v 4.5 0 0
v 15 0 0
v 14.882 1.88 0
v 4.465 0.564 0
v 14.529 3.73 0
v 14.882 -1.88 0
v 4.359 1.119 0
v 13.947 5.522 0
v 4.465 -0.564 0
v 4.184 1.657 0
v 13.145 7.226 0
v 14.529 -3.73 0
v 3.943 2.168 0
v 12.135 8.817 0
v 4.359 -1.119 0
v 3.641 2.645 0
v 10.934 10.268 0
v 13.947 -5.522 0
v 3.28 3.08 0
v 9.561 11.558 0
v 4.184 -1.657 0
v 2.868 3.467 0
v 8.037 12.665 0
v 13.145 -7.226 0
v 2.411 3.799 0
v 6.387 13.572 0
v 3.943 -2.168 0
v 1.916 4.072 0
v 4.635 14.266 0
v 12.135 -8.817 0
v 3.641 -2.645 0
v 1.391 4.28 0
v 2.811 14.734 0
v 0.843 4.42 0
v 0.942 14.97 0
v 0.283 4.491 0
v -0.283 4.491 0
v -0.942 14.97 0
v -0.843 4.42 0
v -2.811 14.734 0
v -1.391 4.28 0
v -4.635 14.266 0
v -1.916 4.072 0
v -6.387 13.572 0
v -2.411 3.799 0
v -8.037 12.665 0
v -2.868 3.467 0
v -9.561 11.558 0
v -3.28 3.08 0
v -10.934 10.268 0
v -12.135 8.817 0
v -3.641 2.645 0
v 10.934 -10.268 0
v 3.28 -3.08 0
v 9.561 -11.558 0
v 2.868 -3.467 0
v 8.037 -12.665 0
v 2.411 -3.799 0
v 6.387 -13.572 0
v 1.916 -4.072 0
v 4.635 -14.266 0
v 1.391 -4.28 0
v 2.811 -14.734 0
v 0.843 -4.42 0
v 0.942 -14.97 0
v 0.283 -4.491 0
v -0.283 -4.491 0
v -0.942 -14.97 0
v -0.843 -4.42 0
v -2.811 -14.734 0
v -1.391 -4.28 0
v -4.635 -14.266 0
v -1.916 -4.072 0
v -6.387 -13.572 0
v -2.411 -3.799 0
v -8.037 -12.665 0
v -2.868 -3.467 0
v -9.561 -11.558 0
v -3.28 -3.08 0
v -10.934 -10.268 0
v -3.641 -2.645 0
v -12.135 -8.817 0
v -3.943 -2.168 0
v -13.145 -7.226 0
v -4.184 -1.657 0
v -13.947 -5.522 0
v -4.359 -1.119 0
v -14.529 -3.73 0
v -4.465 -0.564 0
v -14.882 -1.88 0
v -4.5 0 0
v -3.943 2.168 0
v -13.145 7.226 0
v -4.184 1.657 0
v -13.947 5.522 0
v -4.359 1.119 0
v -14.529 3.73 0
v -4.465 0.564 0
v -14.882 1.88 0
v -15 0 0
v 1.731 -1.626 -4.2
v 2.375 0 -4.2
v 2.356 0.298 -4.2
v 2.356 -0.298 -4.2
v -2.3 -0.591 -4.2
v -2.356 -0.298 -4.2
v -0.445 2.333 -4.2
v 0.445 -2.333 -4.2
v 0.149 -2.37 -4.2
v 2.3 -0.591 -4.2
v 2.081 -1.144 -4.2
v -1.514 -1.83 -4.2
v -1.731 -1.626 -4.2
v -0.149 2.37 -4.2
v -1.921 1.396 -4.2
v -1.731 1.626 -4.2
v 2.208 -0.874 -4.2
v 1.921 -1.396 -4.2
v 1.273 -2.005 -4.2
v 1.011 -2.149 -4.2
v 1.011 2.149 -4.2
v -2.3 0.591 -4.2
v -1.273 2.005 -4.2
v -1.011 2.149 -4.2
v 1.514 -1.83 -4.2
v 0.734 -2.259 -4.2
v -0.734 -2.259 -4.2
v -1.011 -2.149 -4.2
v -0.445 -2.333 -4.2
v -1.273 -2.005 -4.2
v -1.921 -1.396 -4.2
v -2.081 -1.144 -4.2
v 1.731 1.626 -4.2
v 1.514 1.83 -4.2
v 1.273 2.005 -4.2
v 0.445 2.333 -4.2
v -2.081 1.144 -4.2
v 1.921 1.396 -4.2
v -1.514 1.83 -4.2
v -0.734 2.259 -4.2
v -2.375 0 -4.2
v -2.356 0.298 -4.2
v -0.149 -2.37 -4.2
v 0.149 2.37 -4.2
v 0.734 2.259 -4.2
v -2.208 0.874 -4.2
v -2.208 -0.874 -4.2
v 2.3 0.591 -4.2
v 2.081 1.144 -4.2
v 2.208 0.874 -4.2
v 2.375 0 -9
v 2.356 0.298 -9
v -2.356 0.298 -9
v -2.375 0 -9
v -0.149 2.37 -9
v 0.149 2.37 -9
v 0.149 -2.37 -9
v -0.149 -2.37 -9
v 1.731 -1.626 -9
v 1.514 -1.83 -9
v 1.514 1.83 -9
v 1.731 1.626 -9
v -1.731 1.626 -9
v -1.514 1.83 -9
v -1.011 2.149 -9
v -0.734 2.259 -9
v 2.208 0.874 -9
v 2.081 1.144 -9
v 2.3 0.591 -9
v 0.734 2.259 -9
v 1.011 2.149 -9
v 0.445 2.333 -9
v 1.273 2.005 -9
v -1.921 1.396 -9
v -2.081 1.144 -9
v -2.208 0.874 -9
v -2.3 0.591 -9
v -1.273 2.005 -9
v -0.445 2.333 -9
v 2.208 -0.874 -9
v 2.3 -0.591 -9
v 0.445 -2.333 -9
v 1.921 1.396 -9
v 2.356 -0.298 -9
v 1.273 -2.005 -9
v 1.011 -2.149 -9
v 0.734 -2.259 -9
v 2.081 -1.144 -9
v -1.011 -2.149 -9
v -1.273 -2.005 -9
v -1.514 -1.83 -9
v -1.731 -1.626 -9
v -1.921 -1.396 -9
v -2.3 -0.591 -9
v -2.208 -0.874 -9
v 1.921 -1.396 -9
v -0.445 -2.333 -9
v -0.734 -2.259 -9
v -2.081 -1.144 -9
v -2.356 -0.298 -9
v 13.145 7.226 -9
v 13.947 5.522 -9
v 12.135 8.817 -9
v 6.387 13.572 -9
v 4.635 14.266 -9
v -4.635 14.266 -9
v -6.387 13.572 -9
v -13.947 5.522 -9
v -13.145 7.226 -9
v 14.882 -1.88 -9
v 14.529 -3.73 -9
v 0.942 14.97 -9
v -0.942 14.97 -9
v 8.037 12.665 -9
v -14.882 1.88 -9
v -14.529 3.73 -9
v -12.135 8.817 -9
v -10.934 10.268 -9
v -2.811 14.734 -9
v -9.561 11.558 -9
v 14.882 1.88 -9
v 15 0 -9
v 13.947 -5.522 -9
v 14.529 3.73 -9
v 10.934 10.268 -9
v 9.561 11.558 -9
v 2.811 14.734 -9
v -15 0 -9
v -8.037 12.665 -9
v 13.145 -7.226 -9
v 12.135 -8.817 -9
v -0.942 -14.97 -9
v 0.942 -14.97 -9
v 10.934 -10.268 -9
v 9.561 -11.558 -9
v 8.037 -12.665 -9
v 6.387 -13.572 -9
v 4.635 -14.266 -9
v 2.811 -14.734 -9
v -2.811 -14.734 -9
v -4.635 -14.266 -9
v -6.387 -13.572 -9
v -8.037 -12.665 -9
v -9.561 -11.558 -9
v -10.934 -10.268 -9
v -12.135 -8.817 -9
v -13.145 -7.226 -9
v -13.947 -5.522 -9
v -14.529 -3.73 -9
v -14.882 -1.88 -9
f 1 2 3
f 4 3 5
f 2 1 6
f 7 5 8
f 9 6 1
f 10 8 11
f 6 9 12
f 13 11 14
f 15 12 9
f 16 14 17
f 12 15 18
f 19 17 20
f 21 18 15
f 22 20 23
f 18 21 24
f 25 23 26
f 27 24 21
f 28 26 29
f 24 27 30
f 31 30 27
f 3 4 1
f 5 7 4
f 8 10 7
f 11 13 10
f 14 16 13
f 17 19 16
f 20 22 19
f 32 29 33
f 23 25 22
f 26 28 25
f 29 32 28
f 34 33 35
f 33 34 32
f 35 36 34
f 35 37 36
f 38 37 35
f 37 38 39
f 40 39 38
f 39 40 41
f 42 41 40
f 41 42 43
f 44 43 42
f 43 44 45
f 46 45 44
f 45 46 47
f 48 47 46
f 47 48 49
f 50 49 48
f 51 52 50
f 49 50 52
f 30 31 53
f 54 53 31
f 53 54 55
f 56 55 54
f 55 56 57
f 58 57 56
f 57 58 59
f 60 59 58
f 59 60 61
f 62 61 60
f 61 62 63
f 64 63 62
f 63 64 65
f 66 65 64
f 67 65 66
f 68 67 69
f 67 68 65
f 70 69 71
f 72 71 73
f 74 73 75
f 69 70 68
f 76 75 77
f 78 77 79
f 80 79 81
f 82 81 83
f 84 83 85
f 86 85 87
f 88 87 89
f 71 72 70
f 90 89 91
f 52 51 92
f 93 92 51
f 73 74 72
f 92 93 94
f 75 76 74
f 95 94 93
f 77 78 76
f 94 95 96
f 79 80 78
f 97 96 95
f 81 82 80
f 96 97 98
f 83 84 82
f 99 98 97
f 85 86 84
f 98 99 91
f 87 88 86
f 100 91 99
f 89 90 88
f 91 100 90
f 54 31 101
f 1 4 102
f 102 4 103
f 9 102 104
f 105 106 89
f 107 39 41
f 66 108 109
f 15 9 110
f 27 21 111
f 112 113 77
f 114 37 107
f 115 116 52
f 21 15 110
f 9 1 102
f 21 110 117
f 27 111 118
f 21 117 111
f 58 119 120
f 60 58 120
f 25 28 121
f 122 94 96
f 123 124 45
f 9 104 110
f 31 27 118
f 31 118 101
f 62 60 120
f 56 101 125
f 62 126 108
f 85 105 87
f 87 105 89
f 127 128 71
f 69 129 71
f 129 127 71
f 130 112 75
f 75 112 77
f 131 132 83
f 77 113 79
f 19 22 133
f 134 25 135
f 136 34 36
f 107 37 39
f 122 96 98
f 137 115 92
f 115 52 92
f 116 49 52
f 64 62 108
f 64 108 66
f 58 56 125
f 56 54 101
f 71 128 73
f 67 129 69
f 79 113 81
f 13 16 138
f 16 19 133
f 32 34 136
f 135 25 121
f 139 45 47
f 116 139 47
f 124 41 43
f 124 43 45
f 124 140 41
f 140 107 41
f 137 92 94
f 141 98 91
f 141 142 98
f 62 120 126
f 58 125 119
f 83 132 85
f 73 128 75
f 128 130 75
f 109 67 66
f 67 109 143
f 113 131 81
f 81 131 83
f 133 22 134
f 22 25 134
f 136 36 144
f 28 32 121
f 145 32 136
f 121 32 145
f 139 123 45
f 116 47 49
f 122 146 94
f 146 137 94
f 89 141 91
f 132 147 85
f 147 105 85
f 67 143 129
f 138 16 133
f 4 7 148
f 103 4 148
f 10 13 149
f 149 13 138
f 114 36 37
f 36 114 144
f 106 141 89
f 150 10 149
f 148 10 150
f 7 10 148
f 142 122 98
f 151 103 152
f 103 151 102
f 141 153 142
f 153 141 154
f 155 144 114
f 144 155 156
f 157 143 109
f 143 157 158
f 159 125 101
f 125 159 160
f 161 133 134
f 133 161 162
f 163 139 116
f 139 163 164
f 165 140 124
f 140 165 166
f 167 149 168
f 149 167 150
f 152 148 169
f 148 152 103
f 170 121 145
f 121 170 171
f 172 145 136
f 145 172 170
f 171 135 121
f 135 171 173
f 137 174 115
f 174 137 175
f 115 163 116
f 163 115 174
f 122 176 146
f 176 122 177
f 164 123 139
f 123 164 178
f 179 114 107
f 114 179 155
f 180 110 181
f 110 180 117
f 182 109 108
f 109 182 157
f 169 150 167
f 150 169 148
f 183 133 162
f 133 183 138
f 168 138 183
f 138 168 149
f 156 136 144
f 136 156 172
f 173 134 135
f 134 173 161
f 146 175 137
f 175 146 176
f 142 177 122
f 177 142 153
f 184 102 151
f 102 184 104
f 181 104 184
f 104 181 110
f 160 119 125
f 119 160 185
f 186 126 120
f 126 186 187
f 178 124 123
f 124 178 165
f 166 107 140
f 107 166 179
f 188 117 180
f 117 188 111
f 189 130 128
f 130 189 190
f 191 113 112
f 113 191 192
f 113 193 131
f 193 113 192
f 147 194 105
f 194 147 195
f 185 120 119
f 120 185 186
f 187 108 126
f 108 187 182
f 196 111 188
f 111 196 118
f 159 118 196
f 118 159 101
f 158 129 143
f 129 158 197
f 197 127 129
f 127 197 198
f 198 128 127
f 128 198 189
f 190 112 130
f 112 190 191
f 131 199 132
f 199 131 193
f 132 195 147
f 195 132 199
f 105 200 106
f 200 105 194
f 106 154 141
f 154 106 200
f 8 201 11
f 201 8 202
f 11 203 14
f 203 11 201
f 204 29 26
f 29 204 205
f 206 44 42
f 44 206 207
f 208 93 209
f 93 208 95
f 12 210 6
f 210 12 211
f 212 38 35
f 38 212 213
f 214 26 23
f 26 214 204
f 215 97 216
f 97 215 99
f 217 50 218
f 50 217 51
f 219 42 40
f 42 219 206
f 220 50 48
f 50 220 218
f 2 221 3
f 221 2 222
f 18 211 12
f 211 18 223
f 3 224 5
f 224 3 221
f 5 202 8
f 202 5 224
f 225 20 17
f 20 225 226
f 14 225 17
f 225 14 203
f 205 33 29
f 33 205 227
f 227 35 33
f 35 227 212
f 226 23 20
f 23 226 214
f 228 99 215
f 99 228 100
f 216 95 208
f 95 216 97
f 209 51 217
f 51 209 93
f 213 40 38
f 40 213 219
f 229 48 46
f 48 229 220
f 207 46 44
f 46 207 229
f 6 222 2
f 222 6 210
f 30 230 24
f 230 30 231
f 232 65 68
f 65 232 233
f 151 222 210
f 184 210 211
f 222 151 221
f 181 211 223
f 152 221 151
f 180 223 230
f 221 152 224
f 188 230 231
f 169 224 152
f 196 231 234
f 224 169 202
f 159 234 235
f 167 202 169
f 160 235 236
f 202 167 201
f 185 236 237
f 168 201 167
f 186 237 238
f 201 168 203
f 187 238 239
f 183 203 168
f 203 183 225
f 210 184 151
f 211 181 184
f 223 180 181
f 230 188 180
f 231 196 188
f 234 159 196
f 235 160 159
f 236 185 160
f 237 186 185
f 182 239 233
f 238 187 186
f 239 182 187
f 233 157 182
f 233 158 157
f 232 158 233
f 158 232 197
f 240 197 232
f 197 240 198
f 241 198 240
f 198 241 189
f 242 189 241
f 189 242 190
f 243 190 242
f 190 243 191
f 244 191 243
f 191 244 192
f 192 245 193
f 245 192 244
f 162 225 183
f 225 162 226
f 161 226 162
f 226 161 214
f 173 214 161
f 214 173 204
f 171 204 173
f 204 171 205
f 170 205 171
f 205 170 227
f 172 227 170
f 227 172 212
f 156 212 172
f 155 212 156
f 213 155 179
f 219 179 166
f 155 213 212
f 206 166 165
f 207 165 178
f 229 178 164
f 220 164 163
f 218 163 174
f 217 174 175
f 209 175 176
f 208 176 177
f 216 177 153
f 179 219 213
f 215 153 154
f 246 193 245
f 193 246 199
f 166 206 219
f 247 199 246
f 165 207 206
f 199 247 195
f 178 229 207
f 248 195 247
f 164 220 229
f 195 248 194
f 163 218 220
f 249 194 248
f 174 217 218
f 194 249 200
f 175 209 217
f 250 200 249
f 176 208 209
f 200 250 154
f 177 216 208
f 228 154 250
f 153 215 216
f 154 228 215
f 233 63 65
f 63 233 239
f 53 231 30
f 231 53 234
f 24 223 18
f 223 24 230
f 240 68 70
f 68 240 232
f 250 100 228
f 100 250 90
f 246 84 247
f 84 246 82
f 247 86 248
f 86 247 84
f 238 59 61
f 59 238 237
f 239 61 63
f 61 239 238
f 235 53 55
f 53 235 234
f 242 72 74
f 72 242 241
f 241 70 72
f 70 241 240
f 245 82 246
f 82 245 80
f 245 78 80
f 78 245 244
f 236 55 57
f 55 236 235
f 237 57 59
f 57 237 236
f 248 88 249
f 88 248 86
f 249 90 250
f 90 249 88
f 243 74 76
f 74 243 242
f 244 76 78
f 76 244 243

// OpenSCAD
$fn = 50;


difference() {
	union() {
		translate(v = [0, 0, -9.0000000000]) {
			cylinder(h = 9, r = 15.0000000000);
		}
	}
	union() {
		translate(v = [0, 0, 0]) {
			rotate(a = [0, 0, 0]) {
				difference() {
					union() {
						translate(v = [0, 0, -12.0000000000]) {
							cylinder(h = 12, r = 2.2500000000);
						}
						translate(v = [0, 0, -4.2000000000]) {
							cylinder(h = 4.2000000000, r1 = 2.3750000000, r2 = 4.5000000000);
						}
						translate(v = [0, 0, -12.0000000000]) {
							cylinder(h = 12, r = 2.3750000000);
						}
						translate(v = [0, 0, -12.0000000000]) {
							cylinder(h = 12, r = 2.2500000000);
						}
					}
					union();
				}
			}
		}
	}
}
